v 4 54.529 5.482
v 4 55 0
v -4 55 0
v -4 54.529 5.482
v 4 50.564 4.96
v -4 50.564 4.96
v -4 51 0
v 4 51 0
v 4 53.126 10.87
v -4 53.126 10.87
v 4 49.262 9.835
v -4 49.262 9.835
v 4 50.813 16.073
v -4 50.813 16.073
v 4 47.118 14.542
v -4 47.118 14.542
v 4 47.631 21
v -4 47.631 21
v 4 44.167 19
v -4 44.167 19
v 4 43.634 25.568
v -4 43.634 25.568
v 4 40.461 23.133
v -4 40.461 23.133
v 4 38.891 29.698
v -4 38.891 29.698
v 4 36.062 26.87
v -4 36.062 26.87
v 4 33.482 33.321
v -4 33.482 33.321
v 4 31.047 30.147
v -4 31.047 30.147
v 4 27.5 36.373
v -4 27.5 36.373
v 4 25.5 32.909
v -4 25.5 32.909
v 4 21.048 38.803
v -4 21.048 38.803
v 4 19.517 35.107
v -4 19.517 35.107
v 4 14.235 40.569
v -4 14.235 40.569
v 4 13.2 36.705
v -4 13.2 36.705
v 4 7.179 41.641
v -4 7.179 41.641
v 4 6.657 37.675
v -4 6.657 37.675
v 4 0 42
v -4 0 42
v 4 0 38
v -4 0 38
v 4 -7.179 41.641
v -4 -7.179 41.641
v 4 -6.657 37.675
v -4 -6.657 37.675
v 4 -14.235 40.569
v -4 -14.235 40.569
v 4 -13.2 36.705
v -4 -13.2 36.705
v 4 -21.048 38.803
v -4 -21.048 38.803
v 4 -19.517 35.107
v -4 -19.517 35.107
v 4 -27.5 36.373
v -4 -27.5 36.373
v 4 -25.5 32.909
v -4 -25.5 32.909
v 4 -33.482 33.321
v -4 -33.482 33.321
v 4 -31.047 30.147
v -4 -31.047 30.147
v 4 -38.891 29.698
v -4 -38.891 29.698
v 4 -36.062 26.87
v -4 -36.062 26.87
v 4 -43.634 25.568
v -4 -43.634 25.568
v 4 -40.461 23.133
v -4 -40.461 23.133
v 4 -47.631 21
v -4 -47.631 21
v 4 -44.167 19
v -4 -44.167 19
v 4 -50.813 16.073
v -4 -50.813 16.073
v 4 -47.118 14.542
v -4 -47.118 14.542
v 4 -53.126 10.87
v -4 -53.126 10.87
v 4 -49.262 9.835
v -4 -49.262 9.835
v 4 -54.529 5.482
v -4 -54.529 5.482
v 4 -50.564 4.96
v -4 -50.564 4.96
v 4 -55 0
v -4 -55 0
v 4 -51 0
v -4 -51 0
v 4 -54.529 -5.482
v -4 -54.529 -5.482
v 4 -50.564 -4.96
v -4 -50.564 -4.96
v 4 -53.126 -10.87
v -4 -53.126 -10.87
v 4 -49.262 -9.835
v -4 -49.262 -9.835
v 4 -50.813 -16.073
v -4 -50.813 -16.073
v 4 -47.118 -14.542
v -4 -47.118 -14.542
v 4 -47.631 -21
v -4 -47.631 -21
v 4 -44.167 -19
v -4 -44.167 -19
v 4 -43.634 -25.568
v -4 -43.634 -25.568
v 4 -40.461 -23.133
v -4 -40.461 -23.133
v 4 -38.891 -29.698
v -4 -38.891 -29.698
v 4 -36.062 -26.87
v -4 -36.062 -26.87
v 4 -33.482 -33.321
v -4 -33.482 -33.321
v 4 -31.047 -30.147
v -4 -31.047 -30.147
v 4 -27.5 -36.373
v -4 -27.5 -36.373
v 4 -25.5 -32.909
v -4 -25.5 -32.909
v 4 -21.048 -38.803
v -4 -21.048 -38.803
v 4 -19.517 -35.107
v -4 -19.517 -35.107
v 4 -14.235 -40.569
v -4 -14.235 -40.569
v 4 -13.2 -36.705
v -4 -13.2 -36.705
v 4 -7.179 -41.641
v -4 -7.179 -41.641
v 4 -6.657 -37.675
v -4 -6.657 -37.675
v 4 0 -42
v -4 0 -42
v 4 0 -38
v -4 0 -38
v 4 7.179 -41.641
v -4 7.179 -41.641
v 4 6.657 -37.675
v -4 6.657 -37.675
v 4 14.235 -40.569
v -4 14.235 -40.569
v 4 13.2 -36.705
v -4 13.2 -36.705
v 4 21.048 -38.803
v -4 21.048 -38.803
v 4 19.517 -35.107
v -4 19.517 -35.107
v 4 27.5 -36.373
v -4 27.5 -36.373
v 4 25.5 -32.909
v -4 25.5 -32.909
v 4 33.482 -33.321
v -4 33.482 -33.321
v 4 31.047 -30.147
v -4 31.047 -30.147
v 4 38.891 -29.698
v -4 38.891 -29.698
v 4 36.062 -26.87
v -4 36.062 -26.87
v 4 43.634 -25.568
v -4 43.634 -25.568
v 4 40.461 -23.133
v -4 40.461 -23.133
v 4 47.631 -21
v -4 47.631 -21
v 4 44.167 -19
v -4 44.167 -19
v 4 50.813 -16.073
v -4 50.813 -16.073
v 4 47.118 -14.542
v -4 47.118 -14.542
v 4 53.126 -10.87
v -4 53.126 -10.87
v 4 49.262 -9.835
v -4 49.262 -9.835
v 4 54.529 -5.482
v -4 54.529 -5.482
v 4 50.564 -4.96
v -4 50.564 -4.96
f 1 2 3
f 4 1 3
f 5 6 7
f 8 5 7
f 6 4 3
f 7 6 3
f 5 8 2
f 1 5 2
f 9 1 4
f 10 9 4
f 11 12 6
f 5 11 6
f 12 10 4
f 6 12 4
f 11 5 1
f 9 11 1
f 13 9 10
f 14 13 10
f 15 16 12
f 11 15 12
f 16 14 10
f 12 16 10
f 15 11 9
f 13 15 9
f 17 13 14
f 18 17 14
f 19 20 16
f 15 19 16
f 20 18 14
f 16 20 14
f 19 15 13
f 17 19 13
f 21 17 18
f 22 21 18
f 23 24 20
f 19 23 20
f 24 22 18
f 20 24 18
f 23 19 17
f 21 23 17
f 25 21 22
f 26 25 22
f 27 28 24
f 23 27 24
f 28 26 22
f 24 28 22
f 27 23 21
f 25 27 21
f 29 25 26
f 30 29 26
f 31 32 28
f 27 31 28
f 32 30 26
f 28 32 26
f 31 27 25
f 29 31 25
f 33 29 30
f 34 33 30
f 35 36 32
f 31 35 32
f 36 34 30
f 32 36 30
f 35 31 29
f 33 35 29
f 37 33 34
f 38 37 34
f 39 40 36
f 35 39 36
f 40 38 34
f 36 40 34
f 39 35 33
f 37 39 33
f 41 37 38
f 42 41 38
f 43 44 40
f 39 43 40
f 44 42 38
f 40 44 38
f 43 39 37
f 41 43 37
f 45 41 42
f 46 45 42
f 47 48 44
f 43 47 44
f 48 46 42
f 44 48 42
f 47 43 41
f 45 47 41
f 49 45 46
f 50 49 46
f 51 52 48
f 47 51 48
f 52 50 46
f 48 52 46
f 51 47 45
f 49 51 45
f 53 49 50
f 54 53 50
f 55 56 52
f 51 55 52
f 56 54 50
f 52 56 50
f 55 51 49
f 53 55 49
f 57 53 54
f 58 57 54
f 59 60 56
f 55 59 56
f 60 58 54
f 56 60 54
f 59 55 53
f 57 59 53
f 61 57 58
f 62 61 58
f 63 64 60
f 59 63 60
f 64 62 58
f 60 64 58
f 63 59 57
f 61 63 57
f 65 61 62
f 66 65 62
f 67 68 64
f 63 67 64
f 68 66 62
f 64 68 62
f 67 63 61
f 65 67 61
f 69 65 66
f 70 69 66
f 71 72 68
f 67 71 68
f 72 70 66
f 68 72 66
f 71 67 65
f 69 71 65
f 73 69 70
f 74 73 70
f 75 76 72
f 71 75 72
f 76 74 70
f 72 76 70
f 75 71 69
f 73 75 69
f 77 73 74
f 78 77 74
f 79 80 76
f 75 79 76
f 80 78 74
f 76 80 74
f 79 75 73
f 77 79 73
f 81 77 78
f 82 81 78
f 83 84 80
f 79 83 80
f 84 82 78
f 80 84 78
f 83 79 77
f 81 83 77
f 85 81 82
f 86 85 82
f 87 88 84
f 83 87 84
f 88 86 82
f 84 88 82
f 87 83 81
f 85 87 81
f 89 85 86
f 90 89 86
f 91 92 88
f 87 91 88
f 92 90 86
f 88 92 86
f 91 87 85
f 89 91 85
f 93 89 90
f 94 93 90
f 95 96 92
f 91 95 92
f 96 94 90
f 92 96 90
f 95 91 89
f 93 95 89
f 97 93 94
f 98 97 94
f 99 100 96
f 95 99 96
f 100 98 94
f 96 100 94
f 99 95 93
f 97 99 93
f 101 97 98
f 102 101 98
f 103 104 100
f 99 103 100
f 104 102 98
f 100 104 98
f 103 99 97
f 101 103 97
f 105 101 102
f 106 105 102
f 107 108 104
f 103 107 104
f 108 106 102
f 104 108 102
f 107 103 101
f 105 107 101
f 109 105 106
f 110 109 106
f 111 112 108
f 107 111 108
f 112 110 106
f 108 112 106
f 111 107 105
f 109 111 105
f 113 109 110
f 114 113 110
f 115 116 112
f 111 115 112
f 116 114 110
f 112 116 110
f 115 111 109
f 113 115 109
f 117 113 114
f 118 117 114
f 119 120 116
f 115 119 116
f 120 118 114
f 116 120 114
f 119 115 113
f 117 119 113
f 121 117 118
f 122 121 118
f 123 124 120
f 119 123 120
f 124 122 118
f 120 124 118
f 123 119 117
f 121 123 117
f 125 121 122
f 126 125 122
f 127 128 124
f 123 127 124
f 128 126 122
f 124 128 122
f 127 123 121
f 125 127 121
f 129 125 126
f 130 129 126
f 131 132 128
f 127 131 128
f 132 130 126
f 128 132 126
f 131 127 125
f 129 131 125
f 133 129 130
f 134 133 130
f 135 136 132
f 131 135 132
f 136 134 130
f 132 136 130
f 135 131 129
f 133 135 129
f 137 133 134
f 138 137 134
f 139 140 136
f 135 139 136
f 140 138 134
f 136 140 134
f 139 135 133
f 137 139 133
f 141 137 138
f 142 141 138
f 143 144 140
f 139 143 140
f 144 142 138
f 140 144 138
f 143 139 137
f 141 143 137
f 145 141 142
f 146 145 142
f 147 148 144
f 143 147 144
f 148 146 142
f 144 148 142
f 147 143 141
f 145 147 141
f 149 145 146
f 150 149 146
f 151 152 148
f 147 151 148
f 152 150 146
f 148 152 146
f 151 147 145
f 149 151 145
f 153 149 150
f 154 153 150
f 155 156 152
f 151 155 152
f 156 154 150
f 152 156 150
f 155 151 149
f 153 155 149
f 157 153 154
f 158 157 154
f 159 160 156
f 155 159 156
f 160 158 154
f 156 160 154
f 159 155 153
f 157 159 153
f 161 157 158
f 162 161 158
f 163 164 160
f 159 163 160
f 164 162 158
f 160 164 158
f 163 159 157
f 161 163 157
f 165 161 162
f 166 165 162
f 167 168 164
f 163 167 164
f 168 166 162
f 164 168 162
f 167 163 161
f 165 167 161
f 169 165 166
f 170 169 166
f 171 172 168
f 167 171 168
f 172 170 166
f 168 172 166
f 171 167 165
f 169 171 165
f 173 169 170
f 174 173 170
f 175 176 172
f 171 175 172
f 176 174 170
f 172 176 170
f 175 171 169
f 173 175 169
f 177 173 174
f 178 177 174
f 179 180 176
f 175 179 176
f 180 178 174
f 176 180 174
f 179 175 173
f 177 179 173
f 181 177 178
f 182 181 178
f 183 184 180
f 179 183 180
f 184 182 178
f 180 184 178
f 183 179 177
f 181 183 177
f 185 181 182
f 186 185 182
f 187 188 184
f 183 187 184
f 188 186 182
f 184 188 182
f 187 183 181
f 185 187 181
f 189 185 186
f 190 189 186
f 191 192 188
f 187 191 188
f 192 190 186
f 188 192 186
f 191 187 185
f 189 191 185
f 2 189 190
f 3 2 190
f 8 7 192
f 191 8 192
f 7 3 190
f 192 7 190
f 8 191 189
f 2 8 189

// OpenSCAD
polyhedron(points=[[-4.0, 55.0, 0.0], [-4.0, 54.529467, 5.4821], [-4.0, 53.12592, 10.8704], [-4.0, 50.813374, 16.072704], [-4.0, 47.631397, 21.0], [-4.0, 43.634434, 25.56798], [-4.0, 38.890873, 29.698485], [-4.0, 33.481879, 33.32084], [-4.0, 27.5, 36.373067], [-4.0, 21.047589, 38.80294], [-4.0, 14.235047, 40.568885], [-4.0, 7.178941, 41.640684], [-4.0, 0.0, 42.0], [-4.0, -7.178941, 41.640684], [-4.0, -14.235047, 40.568885], [-4.0, -21.047589, 38.80294], [-4.0, -27.5, 36.373067], [-4.0, -33.481879, 33.32084], [-4.0, -38.890873, 29.698485], [-4.0, -43.634434, 25.56798], [-4.0, -47.631397, 21.0], [-4.0, -50.813374, 16.072704], [-4.0, -53.12592, 10.8704], [-4.0, -54.529467, 5.4821], [-4.0, -55.0, 0.0], [-4.0, -54.529467, -5.4821], [-4.0, -53.12592, -10.8704], [-4.0, -50.813374, -16.072704], [-4.0, -47.631397, -21.0], [-4.0, -43.634434, -25.56798], [-4.0, -38.890873, -29.698485], [-4.0, -33.481879, -33.32084], [-4.0, -27.5, -36.373067], [-4.0, -21.047589, -38.80294], [-4.0, -14.235047, -40.568885], [-4.0, -7.178941, -41.640684], [-4.0, -0.0, -42.0], [-4.0, 7.178941, -41.640684], [-4.0, 14.235047, -40.568885], [-4.0, 21.047589, -38.80294], [-4.0, 27.5, -36.373067], [-4.0, 33.481879, -33.32084], [-4.0, 38.890873, -29.698485], [-4.0, 43.634434, -25.56798], [-4.0, 47.631397, -21.0], [-4.0, 50.813374, -16.072704], [-4.0, 53.12592, -10.8704], [-4.0, 54.529467, -5.4821], [-4.0, 51.0, 0.0], [-4.0, 50.563688, 4.959995], [-4.0, 49.262217, 9.835124], [-4.0, 47.117856, 14.54197], [-4.0, 44.167296, 19.0], [-4.0, 40.46102, 23.132934], [-4.0, 36.062446, 26.870058], [-4.0, 31.046833, 30.147427], [-4.0, 25.5, 32.908965], [-4.0, 19.516855, 35.107422], [-4.0, 13.199771, 36.705181], [-4.0, 6.656836, 37.674905], [-4.0, 0.0, 38.0], [-4.0, -6.656836, 37.674905], [-4.0, -13.199771, 36.705181], [-4.0, -19.516855, 35.107422], [-4.0, -25.5, 32.908965], [-4.0, -31.046833, 30.147427], [-4.0, -36.062446, 26.870058], [-4.0, -40.46102, 23.132934], [-4.0, -44.167296, 19.0], [-4.0, -47.117856, 14.54197], [-4.0, -49.262217, 9.835124], [-4.0, -50.563688, 4.959995], [-4.0, -51.0, 0.0], [-4.0, -50.563688, -4.959995], [-4.0, -49.262217, -9.835124], [-4.0, -47.117856, -14.54197], [-4.0, -44.167296, -19.0], [-4.0, -40.46102, -23.132934], [-4.0, -36.062446, -26.870058], [-4.0, -31.046833, -30.147427], [-4.0, -25.5, -32.908965], [-4.0, -19.516855, -35.107422], [-4.0, -13.199771, -36.705181], [-4.0, -6.656836, -37.674905], [-4.0, -0.0, -38.0], [-4.0, 6.656836, -37.674905], [-4.0, 13.199771, -36.705181], [-4.0, 19.516855, -35.107422], [-4.0, 25.5, -32.908965], [-4.0, 31.046833, -30.147427], [-4.0, 36.062446, -26.870058], [-4.0, 40.46102, -23.132934], [-4.0, 44.167296, -19.0], [-4.0, 47.117856, -14.54197], [-4.0, 49.262217, -9.835124], [-4.0, 50.563688, -4.959995], [4.0, 55.0, 0.0], [4.0, 54.529467, 5.4821], [4.0, 53.12592, 10.8704], [4.0, 50.813374, 16.072704], [4.0, 47.631397, 21.0], [4.0, 43.634434, 25.56798], [4.0, 38.890873, 29.698485], [4.0, 33.481879, 33.32084], [4.0, 27.5, 36.373067], [4.0, 21.047589, 38.80294], [4.0, 14.235047, 40.568885], [4.0, 7.178941, 41.640684], [4.0, 0.0, 42.0], [4.0, -7.178941, 41.640684], [4.0, -14.235047, 40.568885], [4.0, -21.047589, 38.80294], [4.0, -27.5, 36.373067], [4.0, -33.481879, 33.32084], [4.0, -38.890873, 29.698485], [4.0, -43.634434, 25.56798], [4.0, -47.631397, 21.0], [4.0, -50.813374, 16.072704], [4.0, -53.12592, 10.8704], [4.0, -54.529467, 5.4821], [4.0, -55.0, 0.0], [4.0, -54.529467, -5.4821], [4.0, -53.12592, -10.8704], [4.0, -50.813374, -16.072704], [4.0, -47.631397, -21.0], [4.0, -43.634434, -25.56798], [4.0, -38.890873, -29.698485], [4.0, -33.481879, -33.32084], [4.0, -27.5, -36.373067], [4.0, -21.047589, -38.80294], [4.0, -14.235047, -40.568885], [4.0, -7.178941, -41.640684], [4.0, -0.0, -42.0], [4.0, 7.178941, -41.640684], [4.0, 14.235047, -40.568885], [4.0, 21.047589, -38.80294], [4.0, 27.5, -36.373067], [4.0, 33.481879, -33.32084], [4.0, 38.890873, -29.698485], [4.0, 43.634434, -25.56798], [4.0, 47.631397, -21.0], [4.0, 50.813374, -16.072704], [4.0, 53.12592, -10.8704], [4.0, 54.529467, -5.4821], [4.0, 51.0, 0.0], [4.0, 50.563688, 4.959995], [4.0, 49.262217, 9.835124], [4.0, 47.117856, 14.54197], [4.0, 44.167296, 19.0], [4.0, 40.46102, 23.132934], [4.0, 36.062446, 26.870058], [4.0, 31.046833, 30.147427], [4.0, 25.5, 32.908965], [4.0, 19.516855, 35.107422], [4.0, 13.199771, 36.705181], [4.0, 6.656836, 37.674905], [4.0, 0.0, 38.0], [4.0, -6.656836, 37.674905], [4.0, -13.199771, 36.705181], [4.0, -19.516855, 35.107422], [4.0, -25.5, 32.908965], [4.0, -31.046833, 30.147427], [4.0, -36.062446, 26.870058], [4.0, -40.46102, 23.132934], [4.0, -44.167296, 19.0], [4.0, -47.117856, 14.54197], [4.0, -49.262217, 9.835124], [4.0, -50.563688, 4.959995], [4.0, -51.0, 0.0], [4.0, -50.563688, -4.959995], [4.0, -49.262217, -9.835124], [4.0, -47.117856, -14.54197], [4.0, -44.167296, -19.0], [4.0, -40.46102, -23.132934], [4.0, -36.062446, -26.870058], [4.0, -31.046833, -30.147427], [4.0, -25.5, -32.908965], [4.0, -19.516855, -35.107422], [4.0, -13.199771, -36.705181], [4.0, -6.656836, -37.674905], [4.0, -0.0, -38.0], [4.0, 6.656836, -37.674905], [4.0, 13.199771, -36.705181], [4.0, 19.516855, -35.107422], [4.0, 25.5, -32.908965], [4.0, 31.046833, -30.147427], [4.0, 36.062446, -26.870058], [4.0, 40.46102, -23.132934], [4.0, 44.167296, -19.0], [4.0, 47.117856, -14.54197], [4.0, 49.262217, -9.835124], [4.0, 50.563688, -4.959995]], faces=[[0, 96, 97], [0, 97, 1], [48, 49, 145], [48, 145, 144], [0, 1, 49], [0, 49, 48], [96, 144, 145], [96, 145, 97], [1, 97, 98], [1, 98, 2], [49, 50, 146], [49, 146, 145], [1, 2, 50], [1, 50, 49], [97, 145, 146], [97, 146, 98], [2, 98, 99], [2, 99, 3], [50, 51, 147], [50, 147, 146], [2, 3, 51], [2, 51, 50], [98, 146, 147], [98, 147, 99], [3, 99, 100], [3, 100, 4], [51, 52, 148], [51, 148, 147], [3, 4, 52], [3, 52, 51], [99, 147, 148], [99, 148, 100], [4, 100, 101], [4, 101, 5], [52, 53, 149], [52, 149, 148], [4, 5, 53], [4, 53, 52], [100, 148, 149], [100, 149, 101], [5, 101, 102], [5, 102, 6], [53, 54, 150], [53, 150, 149], [5, 6, 54], [5, 54, 53], [101, 149, 150], [101, 150, 102], [6, 102, 103], [6, 103, 7], [54, 55, 151], [54, 151, 150], [6, 7, 55], [6, 55, 54], [102, 150, 151], [102, 151, 103], [7, 103, 104], [7, 104, 8], [55, 56, 152], [55, 152, 151], [7, 8, 56], [7, 56, 55], [103, 151, 152], [103, 152, 104], [8, 104, 105], [8, 105, 9], [56, 57, 153], [56, 153, 152], [8, 9, 57], [8, 57, 56], [104, 152, 153], [104, 153, 105], [9, 105, 106], [9, 106, 10], [57, 58, 154], [57, 154, 153], [9, 10, 58], [9, 58, 57], [105, 153, 154], [105, 154, 106], [10, 106, 107], [10, 107, 11], [58, 59, 155], [58, 155, 154], [10, 11, 59], [10, 59, 58], [106, 154, 155], [106, 155, 107], [11, 107, 108], [11, 108, 12], [59, 60, 156], [59, 156, 155], [11, 12, 60], [11, 60, 59], [107, 155, 156], [107, 156, 108], [12, 108, 109], [12, 109, 13], [60, 61, 157], [60, 157, 156], [12, 13, 61], [12, 61, 60], [108, 156, 157], [108, 157, 109], [13, 109, 110], [13, 110, 14], [61, 62, 158], [61, 158, 157], [13, 14, 62], [13, 62, 61], [109, 157, 158], [109, 158, 110], [14, 110, 111], [14, 111, 15], [62, 63, 159], [62, 159, 158], [14, 15, 63], [14, 63, 62], [110, 158, 159], [110, 159, 111], [15, 111, 112], [15, 112, 16], [63, 64, 160], [63, 160, 159], [15, 16, 64], [15, 64, 63], [111, 159, 160], [111, 160, 112], [16, 112, 113], [16, 113, 17], [64, 65, 161], [64, 161, 160], [16, 17, 65], [16, 65, 64], [112, 160, 161], [112, 161, 113], [17, 113, 114], [17, 114, 18], [65, 66, 162], [65, 162, 161], [17, 18, 66], [17, 66, 65], [113, 161, 162], [113, 162, 114], [18, 114, 115], [18, 115, 19], [66, 67, 163], [66, 163, 162], [18, 19, 67], [18, 67, 66], [114, 162, 163], [114, 163, 115], [19, 115, 116], [19, 116, 20], [67, 68, 164], [67, 164, 163], [19, 20, 68], [19, 68, 67], [115, 163, 164], [115, 164, 116], [20, 116, 117], [20, 117, 21], [68, 69, 165], [68, 165, 164], [20, 21, 69], [20, 69, 68], [116, 164, 165], [116, 165, 117], [21, 117, 118], [21, 118, 22], [69, 70, 166], [69, 166, 165], [21, 22, 70], [21, 70, 69], [117, 165, 166], [117, 166, 118], [22, 118, 119], [22, 119, 23], [70, 71, 167], [70, 167, 166], [22, 23, 71], [22, 71, 70], [118, 166, 167], [118, 167, 119], [23, 119, 120], [23, 120, 24], [71, 72, 168], [71, 168, 167], [23, 24, 72], [23, 72, 71], [119, 167, 168], [119, 168, 120], [24, 120, 121], [24, 121, 25], [72, 73, 169], [72, 169, 168], [24, 25, 73], [24, 73, 72], [120, 168, 169], [120, 169, 121], [25, 121, 122], [25, 122, 26], [73, 74, 170], [73, 170, 169], [25, 26, 74], [25, 74, 73], [121, 169, 170], [121, 170, 122], [26, 122, 123], [26, 123, 27], [74, 75, 171], [74, 171, 170], [26, 27, 75], [26, 75, 74], [122, 170, 171], [122, 171, 123], [27, 123, 124], [27, 124, 28], [75, 76, 172], [75, 172, 171], [27, 28, 76], [27, 76, 75], [123, 171, 172], [123, 172, 124], [28, 124, 125], [28, 125, 29], [76, 77, 173], [76, 173, 172], [28, 29, 77], [28, 77, 76], [124, 172, 173], [124, 173, 125], [29, 125, 126], [29, 126, 30], [77, 78, 174], [77, 174, 173], [29, 30, 78], [29, 78, 77], [125, 173, 174], [125, 174, 126], [30, 126, 127], [30, 127, 31], [78, 79, 175], [78, 175, 174], [30, 31, 79], [30, 79, 78], [126, 174, 175], [126, 175, 127], [31, 127, 128], [31, 128, 32], [79, 80, 176], [79, 176, 175], [31, 32, 80], [31, 80, 79], [127, 175, 176], [127, 176, 128], [32, 128, 129], [32, 129, 33], [80, 81, 177], [80, 177, 176], [32, 33, 81], [32, 81, 80], [128, 176, 177], [128, 177, 129], [33, 129, 130], [33, 130, 34], [81, 82, 178], [81, 178, 177], [33, 34, 82], [33, 82, 81], [129, 177, 178], [129, 178, 130], [34, 130, 131], [34, 131, 35], [82, 83, 179], [82, 179, 178], [34, 35, 83], [34, 83, 82], [130, 178, 179], [130, 179, 131], [35, 131, 132], [35, 132, 36], [83, 84, 180], [83, 180, 179], [35, 36, 84], [35, 84, 83], [131, 179, 180], [131, 180, 132], [36, 132, 133], [36, 133, 37], [84, 85, 181], [84, 181, 180], [36, 37, 85], [36, 85, 84], [132, 180, 181], [132, 181, 133], [37, 133, 134], [37, 134, 38], [85, 86, 182], [85, 182, 181], [37, 38, 86], [37, 86, 85], [133, 181, 182], [133, 182, 134], [38, 134, 135], [38, 135, 39], [86, 87, 183], [86, 183, 182], [38, 39, 87], [38, 87, 86], [134, 182, 183], [134, 183, 135], [39, 135, 136], [39, 136, 40], [87, 88, 184], [87, 184, 183], [39, 40, 88], [39, 88, 87], [135, 183, 184], [135, 184, 136], [40, 136, 137], [40, 137, 41], [88, 89, 185], [88, 185, 184], [40, 41, 89], [40, 89, 88], [136, 184, 185], [136, 185, 137], [41, 137, 138], [41, 138, 42], [89, 90, 186], [89, 186, 185], [41, 42, 90], [41, 90, 89], [137, 185, 186], [137, 186, 138], [42, 138, 139], [42, 139, 43], [90, 91, 187], [90, 187, 186], [42, 43, 91], [42, 91, 90], [138, 186, 187], [138, 187, 139], [43, 139, 140], [43, 140, 44], [91, 92, 188], [91, 188, 187], [43, 44, 92], [43, 92, 91], [139, 187, 188], [139, 188, 140], [44, 140, 141], [44, 141, 45], [92, 93, 189], [92, 189, 188], [44, 45, 93], [44, 93, 92], [140, 188, 189], [140, 189, 141], [45, 141, 142], [45, 142, 46], [93, 94, 190], [93, 190, 189], [45, 46, 94], [45, 94, 93], [141, 189, 190], [141, 190, 142], [46, 142, 143], [46, 143, 47], [94, 95, 191], [94, 191, 190], [46, 47, 95], [46, 95, 94], [142, 190, 191], [142, 191, 143], [47, 143, 96], [47, 96, 0], [95, 48, 144], [95, 144, 191], [47, 0, 48], [47, 48, 95], [143, 191, 144], [143, 144, 96]], convexity=20);
